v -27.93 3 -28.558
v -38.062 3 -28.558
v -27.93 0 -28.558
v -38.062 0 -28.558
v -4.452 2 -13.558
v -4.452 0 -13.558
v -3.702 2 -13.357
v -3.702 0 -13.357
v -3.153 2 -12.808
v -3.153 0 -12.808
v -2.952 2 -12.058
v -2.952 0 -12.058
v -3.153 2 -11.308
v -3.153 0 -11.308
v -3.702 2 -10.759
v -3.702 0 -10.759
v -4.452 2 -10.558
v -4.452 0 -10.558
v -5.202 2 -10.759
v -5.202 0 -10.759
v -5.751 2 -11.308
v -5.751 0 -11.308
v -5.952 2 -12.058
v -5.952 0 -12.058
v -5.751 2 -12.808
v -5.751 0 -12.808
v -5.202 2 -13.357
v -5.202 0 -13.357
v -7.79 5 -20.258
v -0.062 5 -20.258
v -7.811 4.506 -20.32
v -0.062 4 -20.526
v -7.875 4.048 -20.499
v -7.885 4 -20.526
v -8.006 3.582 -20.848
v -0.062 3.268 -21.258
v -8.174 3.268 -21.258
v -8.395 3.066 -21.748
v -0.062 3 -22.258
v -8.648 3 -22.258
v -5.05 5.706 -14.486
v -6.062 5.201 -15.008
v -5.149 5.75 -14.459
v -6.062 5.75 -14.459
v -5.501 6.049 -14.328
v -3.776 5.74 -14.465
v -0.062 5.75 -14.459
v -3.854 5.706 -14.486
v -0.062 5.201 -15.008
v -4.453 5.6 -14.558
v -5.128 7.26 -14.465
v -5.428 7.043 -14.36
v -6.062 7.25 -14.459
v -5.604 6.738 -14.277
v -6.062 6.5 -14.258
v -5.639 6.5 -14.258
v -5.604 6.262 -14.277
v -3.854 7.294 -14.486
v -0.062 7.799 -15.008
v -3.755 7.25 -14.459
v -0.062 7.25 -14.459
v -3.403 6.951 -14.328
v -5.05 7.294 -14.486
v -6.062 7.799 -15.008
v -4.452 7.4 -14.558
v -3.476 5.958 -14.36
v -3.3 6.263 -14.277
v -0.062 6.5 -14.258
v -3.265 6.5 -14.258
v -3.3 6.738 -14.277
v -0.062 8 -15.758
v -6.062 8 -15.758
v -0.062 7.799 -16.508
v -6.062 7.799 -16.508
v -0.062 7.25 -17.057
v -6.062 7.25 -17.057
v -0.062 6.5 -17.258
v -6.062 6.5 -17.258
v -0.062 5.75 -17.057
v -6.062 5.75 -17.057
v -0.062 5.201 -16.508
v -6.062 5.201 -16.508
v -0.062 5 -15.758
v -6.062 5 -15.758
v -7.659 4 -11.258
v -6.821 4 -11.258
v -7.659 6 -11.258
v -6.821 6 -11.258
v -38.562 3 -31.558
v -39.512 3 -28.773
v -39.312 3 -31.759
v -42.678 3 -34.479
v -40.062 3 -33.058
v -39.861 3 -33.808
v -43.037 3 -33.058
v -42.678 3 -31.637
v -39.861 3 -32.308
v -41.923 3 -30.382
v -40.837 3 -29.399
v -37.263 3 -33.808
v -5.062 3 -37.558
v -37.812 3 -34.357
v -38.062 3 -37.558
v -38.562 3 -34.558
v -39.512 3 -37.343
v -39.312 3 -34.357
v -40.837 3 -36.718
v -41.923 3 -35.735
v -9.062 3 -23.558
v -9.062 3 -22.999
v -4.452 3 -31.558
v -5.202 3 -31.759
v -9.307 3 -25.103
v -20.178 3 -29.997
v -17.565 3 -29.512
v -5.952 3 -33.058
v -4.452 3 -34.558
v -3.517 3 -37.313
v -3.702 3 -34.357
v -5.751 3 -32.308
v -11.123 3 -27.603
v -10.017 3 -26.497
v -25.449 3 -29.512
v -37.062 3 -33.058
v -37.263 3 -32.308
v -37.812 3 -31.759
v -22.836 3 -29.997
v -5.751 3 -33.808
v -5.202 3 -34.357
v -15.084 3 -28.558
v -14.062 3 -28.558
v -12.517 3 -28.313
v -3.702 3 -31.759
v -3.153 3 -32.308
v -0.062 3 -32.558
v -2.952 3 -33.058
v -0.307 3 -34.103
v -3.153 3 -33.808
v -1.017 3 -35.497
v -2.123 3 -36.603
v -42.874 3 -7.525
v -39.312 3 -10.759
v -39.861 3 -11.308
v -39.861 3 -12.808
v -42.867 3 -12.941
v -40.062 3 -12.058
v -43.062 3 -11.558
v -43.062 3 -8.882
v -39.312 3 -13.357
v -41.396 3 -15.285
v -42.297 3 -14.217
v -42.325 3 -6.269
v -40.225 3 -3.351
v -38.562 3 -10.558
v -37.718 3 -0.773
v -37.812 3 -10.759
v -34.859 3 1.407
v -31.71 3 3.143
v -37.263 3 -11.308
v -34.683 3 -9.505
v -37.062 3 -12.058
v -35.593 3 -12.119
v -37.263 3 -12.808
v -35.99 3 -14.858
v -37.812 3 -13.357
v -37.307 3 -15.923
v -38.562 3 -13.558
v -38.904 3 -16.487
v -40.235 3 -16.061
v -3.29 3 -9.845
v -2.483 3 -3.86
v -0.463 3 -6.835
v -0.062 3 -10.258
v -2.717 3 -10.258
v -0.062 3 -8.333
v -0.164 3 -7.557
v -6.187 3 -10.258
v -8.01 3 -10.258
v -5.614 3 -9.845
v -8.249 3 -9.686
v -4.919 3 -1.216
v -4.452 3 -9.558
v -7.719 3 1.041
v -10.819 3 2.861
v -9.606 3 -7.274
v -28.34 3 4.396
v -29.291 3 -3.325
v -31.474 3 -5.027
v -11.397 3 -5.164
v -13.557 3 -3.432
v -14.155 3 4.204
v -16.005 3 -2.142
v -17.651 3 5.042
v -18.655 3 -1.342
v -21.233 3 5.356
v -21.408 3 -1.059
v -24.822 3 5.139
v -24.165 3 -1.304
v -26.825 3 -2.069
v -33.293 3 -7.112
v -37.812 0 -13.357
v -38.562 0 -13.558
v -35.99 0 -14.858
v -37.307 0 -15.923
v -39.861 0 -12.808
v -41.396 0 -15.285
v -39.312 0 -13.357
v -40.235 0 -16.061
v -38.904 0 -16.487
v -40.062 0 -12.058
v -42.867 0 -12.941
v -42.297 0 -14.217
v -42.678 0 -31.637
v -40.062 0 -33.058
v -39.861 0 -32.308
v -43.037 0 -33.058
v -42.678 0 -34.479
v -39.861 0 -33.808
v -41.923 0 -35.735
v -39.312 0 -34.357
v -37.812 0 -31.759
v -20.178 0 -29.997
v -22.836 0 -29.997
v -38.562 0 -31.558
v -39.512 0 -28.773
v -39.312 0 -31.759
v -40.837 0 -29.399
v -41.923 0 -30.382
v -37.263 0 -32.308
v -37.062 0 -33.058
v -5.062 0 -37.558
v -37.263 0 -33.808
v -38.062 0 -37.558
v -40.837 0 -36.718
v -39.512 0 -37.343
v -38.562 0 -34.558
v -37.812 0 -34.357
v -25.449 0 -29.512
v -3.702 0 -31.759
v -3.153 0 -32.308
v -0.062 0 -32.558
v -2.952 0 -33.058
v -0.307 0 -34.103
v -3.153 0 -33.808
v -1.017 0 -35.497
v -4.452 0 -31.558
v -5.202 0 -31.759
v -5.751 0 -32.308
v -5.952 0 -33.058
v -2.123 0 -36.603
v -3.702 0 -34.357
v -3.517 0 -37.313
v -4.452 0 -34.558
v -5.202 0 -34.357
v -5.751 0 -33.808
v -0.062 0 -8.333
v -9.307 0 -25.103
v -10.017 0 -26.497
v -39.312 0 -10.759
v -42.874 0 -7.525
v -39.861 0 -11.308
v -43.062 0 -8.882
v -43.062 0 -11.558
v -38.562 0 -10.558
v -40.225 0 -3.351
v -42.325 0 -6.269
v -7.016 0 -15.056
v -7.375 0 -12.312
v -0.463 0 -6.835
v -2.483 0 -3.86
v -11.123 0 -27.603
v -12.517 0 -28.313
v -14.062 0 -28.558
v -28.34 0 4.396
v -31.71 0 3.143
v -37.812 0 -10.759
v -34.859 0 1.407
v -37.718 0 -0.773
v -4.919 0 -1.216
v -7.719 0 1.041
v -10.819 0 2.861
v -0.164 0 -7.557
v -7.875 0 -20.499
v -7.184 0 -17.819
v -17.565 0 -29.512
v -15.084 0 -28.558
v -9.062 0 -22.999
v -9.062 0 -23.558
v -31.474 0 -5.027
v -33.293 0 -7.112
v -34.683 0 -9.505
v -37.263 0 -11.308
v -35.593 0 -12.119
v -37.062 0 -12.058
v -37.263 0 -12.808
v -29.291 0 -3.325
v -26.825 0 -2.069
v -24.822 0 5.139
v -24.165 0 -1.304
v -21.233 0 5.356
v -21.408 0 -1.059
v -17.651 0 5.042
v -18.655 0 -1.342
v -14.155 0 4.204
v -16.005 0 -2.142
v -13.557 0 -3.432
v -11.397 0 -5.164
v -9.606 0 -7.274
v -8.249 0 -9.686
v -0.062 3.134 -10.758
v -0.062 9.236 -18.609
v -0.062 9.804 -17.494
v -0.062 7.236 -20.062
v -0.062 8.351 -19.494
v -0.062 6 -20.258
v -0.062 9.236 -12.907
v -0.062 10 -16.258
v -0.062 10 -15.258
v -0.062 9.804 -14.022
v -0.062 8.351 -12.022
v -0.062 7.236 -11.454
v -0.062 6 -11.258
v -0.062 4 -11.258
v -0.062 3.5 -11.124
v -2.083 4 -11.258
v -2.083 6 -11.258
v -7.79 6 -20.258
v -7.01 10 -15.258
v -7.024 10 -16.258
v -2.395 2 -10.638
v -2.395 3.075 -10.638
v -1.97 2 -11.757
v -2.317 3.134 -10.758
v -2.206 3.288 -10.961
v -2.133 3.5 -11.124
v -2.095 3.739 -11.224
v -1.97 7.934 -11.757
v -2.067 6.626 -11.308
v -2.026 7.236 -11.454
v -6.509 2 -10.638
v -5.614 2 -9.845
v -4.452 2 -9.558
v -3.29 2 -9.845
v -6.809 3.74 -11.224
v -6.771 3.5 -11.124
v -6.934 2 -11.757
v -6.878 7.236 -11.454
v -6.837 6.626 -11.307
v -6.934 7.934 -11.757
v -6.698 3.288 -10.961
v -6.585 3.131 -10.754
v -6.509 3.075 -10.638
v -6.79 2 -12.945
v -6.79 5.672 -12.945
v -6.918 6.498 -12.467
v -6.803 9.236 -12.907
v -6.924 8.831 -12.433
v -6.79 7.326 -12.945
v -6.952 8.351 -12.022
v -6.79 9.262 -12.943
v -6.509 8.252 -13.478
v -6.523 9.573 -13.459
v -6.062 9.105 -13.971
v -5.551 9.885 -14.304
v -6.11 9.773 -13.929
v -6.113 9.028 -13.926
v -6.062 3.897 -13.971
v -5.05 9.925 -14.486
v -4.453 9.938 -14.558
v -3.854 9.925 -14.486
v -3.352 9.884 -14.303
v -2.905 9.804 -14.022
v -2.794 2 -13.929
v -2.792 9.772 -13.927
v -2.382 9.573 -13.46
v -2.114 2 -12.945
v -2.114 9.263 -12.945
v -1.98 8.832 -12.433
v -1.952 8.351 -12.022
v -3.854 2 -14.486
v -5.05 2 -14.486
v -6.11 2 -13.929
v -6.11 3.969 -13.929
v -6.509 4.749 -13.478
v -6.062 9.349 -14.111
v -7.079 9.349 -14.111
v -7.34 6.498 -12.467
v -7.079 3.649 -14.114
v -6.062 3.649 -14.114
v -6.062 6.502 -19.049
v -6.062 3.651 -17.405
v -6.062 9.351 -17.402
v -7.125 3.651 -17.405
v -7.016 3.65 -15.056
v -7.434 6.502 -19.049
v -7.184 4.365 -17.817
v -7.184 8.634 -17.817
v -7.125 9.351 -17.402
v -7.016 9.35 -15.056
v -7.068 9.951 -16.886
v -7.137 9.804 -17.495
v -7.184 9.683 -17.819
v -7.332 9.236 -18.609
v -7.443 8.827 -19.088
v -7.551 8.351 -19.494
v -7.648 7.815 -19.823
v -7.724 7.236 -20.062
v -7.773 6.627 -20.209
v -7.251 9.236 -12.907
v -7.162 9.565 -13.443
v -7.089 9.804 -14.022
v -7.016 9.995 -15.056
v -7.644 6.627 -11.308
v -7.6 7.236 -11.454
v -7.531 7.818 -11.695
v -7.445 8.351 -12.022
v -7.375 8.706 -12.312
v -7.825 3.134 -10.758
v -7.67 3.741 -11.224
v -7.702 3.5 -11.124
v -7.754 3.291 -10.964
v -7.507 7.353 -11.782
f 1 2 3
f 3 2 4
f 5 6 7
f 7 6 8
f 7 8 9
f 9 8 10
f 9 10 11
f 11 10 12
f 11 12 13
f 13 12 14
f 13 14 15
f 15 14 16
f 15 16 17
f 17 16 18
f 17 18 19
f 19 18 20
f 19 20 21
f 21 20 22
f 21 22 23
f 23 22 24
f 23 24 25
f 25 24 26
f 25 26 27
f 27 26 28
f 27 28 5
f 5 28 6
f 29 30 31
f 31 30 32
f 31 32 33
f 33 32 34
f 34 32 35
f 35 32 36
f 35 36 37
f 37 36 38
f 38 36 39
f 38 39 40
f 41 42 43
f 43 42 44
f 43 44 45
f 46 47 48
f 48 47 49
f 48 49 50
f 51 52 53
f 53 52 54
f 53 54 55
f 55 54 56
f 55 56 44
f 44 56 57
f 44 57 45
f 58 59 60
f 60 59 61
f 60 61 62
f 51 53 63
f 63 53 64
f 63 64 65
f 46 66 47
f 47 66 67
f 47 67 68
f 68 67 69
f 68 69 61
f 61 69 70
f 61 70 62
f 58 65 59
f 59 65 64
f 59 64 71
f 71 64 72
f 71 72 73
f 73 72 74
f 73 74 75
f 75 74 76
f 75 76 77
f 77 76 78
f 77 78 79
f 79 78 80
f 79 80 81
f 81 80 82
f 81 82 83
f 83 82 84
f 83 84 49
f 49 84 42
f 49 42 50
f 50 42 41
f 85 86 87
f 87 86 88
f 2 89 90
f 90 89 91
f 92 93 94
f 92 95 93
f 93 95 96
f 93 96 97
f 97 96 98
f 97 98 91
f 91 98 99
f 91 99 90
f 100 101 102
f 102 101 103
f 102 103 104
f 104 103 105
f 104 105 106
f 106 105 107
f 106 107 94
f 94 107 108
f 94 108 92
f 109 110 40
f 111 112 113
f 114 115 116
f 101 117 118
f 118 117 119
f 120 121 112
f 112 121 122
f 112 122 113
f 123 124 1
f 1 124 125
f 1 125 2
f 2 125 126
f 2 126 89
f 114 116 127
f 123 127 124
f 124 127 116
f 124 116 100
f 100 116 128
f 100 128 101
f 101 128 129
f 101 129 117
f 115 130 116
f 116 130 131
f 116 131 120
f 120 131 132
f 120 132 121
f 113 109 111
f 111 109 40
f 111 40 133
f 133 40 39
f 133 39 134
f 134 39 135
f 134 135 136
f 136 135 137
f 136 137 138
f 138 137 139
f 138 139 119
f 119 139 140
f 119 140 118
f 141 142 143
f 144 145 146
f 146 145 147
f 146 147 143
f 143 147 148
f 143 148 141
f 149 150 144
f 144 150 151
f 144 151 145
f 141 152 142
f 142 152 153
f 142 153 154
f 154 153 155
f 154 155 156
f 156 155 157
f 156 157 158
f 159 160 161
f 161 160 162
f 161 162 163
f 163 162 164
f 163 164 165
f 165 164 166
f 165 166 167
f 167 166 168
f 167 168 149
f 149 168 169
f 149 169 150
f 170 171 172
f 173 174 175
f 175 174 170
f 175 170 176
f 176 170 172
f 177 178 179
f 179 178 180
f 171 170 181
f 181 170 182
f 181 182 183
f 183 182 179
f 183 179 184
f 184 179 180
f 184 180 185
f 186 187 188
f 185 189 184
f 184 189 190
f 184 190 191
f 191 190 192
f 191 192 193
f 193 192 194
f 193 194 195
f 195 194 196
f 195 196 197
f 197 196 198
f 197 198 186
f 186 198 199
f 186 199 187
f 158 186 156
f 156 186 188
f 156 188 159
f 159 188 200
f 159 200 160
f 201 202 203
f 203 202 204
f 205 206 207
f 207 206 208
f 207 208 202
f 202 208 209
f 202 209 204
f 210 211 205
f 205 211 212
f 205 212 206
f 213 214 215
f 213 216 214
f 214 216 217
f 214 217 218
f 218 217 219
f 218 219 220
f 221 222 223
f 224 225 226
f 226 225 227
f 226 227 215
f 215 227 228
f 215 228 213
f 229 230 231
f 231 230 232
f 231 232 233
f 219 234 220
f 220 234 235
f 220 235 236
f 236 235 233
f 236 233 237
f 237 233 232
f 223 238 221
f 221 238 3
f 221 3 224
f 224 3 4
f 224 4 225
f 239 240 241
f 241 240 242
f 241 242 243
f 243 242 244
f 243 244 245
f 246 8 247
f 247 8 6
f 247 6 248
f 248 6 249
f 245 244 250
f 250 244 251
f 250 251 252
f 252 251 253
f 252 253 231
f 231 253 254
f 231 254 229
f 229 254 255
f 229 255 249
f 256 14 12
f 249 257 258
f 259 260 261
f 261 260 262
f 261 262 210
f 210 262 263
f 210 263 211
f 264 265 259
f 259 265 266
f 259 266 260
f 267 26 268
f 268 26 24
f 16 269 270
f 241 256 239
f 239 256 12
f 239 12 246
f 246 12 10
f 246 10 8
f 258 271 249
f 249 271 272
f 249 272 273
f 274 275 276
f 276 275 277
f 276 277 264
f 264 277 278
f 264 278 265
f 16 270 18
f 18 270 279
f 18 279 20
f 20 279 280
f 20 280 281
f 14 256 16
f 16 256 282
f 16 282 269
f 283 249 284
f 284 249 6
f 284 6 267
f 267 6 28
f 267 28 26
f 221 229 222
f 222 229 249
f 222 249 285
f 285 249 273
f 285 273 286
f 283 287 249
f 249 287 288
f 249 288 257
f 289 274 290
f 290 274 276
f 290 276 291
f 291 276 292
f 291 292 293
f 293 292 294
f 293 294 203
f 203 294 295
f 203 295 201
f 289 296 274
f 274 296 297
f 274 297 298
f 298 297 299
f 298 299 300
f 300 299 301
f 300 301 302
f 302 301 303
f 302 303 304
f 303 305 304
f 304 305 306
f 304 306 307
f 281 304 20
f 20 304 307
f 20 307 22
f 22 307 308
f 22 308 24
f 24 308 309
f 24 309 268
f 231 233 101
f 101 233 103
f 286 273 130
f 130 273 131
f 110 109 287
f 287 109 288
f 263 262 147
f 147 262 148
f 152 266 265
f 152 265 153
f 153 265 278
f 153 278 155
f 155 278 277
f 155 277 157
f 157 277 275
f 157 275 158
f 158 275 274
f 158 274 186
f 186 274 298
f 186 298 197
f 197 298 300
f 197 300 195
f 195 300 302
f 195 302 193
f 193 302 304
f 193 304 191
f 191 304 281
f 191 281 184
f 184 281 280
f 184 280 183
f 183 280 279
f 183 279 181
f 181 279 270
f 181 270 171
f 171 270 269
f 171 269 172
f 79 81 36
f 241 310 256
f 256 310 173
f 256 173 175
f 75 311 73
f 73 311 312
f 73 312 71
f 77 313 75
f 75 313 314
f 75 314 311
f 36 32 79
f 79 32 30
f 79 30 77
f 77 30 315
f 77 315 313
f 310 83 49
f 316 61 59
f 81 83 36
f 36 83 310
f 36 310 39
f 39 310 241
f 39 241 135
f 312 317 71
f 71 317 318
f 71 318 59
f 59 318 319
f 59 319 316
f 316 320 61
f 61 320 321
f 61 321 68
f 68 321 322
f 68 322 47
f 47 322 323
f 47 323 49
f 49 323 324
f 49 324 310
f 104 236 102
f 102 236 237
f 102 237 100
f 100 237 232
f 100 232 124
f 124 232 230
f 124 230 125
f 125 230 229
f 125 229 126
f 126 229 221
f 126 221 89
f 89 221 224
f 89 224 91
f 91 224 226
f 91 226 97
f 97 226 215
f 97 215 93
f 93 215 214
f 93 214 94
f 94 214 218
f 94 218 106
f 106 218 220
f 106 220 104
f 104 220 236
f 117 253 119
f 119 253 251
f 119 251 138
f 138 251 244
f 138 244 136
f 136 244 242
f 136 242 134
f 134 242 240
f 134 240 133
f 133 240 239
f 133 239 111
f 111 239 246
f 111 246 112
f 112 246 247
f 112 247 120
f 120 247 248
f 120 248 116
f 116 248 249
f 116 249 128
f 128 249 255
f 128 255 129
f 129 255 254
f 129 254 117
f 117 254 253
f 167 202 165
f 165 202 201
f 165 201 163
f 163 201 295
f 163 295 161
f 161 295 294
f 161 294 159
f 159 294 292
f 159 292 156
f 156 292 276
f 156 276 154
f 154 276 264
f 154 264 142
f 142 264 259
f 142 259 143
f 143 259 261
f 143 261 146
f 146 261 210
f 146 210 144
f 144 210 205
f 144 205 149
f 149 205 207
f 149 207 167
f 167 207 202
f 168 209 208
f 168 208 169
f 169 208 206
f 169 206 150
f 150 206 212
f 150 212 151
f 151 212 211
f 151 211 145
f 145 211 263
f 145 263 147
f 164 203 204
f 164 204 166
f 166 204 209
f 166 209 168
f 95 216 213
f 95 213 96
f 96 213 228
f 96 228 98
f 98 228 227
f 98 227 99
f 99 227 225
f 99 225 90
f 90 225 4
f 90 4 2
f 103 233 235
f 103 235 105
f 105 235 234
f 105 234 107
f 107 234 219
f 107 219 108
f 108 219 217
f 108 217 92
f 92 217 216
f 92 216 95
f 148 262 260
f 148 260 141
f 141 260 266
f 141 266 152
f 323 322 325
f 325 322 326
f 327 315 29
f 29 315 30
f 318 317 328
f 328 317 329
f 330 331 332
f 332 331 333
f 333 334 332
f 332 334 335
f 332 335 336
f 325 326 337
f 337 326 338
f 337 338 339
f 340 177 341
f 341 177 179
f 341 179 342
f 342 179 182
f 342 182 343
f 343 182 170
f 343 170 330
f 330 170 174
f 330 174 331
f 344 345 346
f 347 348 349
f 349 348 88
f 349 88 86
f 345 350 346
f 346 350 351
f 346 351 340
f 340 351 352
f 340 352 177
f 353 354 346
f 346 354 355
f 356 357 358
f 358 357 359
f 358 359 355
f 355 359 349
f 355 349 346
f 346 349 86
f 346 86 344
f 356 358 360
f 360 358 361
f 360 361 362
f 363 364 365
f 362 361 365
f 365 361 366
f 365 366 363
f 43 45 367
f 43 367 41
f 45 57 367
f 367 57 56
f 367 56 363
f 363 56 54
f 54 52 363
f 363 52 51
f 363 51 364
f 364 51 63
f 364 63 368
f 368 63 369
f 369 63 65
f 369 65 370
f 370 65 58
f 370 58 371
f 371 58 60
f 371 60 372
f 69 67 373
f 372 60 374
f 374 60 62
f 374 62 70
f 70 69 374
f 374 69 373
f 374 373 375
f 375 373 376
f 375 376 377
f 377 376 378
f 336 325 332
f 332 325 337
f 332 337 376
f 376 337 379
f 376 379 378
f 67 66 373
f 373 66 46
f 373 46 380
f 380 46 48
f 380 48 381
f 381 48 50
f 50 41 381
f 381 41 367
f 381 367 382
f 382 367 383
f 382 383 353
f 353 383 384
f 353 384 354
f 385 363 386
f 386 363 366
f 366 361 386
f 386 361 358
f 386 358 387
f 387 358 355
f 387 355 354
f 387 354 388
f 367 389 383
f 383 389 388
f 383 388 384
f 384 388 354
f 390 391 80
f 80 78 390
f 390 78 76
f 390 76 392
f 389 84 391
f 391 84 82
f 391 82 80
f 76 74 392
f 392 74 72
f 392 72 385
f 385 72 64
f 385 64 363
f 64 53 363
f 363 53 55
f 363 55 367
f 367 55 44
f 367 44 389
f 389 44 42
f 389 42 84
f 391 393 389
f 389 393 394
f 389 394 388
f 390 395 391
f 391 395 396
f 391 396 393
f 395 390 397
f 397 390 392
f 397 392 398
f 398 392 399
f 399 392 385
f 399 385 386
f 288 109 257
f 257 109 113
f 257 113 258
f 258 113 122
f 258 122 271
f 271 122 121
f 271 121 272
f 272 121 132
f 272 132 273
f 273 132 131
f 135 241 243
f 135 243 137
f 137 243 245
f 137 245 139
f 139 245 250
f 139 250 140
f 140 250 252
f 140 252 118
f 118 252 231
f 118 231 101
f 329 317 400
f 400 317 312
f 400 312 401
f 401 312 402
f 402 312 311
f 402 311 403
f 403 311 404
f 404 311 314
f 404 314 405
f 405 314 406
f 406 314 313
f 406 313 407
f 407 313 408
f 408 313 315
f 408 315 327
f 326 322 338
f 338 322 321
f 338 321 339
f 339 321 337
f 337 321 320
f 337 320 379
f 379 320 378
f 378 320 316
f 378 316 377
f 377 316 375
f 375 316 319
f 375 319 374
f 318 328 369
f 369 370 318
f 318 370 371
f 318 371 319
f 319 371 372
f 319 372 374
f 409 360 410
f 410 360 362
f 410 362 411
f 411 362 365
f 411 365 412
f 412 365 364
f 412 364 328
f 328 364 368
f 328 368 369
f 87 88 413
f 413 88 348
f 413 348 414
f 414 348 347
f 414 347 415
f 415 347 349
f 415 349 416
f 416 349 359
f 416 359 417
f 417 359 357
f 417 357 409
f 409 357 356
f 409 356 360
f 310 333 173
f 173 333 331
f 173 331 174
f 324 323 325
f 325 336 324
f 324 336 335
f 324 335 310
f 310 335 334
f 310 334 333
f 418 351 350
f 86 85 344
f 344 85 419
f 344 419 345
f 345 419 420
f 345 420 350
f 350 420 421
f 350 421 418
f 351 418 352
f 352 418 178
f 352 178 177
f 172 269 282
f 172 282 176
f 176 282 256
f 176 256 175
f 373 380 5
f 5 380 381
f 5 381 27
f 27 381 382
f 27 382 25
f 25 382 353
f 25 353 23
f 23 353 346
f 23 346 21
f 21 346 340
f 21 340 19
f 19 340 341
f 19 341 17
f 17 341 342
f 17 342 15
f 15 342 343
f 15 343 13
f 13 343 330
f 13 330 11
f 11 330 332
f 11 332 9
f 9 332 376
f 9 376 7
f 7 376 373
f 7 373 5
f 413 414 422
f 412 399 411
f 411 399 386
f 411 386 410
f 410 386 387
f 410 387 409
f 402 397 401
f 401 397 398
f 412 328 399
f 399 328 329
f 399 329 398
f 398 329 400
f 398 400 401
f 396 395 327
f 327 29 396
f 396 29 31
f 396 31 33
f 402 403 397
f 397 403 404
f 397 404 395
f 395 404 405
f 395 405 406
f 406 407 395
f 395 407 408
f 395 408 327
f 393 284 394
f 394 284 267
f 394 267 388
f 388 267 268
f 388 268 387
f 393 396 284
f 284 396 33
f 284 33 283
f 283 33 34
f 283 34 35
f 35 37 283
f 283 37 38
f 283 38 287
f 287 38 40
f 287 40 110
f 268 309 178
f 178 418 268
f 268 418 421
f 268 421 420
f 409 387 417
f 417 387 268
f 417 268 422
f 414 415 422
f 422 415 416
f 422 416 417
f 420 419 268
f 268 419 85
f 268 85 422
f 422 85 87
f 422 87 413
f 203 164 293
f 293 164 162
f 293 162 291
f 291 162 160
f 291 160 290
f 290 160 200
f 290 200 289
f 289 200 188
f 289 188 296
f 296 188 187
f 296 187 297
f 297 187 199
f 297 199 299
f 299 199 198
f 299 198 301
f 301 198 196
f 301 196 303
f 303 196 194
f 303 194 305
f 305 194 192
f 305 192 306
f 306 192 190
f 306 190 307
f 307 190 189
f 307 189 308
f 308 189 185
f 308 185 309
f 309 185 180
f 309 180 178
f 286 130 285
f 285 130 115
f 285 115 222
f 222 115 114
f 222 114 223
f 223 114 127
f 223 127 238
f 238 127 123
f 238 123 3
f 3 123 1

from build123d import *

# Parameters (mm, degrees)
ESQUISSE1_R                  = 1.5
BOSS_EXTRU_1_DEPTH           = 3
CONG_1_R                     = 5
ESQUISSE2_W                  = 9
ESQUISSE2_H                  = 9
BOSS_EXTRU_2_DEPTH           = 7
ESQUISSE3_R                  = 2.5
ENL_V_MAT_EXTRU_1_DEPTH      = 7
ESQUISSE6_R                  = 1.5
ENL_V_MAT_EXTRU_2_DEPTH      = 52.639313998
ENL_V_MAT_EXTRU_3_DEPTH      = 3
CONG_2_R                     = 5
CONG_5_R                     = 2
CONG_7_R                     = 4
CONG_8_R                     = 4
CONG_10_R                    = 1
CONG_11_R                    = 3
ESQUISSE8_R                  = 2.5
ENL_V_MAT_EXTRU_4_DEPTH      = 1
ENL_V_MAT_EXTRU_5_DEPTH      = 58.566971538
ENL_V_MAT_EXTRU_5_DEPTH_BACK = 58.566971538
ESQUISSE9_R                  = 14.5


# Some blends are built 0.0001 mm under size
with BuildPart() as part:
    # Esquisse1 → Boss.-Extru.1 (new body)
    with BuildSketch(Plane(origin=(0, 0, 0), x_dir=(1, 0, 0), z_dir=(0, 1, 0))):
        with BuildLine():
            Line((-43.062018769, 37.558204832), (-43.062018769, 28.558204832))
            Line((-43.062018769, 28.558204832), (-9.062018769, 28.558204832))
            Line((-9.062018769, 28.558204832), (-9.062018769, 16.558204832))
            Line((-9.062018769, 16.558204832), (-10.400687943, 16.558204832))
            ThreePointArc((-10.400687943, 16.558204832), (-22.504500987, 1.48048564), (-34.608314032, 16.558204832))
            Line((-34.608314032, 16.558204832), (-43.062018769, 16.558204832))
            Line((-43.062018769, 16.558204832), (-43.062018769, 7.558204832))
            ThreePointArc((-43.062018769, 7.558204832), (-21.562018769, -5.358424695), (-0.062018769, 7.558204832))
            Line((-0.062018769, 7.558204832), (-0.062018769, 37.558204832))
            Line((-0.062018769, 37.558204832), (-43.062018769, 37.558204832))
        make_face()
        with Locations(Location((-38.562018769, 33.058204832, 0), (0, 0, 270))):
            Circle(ESQUISSE1_R, mode=Mode.SUBTRACT)
        with Locations(Location((-4.452018769, 33.058204832, 0), (0, 0, 270))):
            Circle(ESQUISSE1_R, mode=Mode.SUBTRACT)
        with Locations(Location((-38.562018769, 12.058204832, 0), (0, 0, 270))):
            Circle(ESQUISSE1_R, mode=Mode.SUBTRACT)
        with Locations(Location((-4.452018769, 12.058204832, 0), (0, 0, 270))):
            Circle(ESQUISSE1_R, mode=Mode.SUBTRACT)
    extrude(amount=BOSS_EXTRU_1_DEPTH)

    # Congé1
    # the kernel refuses this fillet: 5 mm, written as the material it takes off along each edge
    with BuildSketch(Plane(origin=(-10.400687943, -7.42198732, -16.558204832), x_dir=(1, 0, 0), z_dir=(0, 1, 0))) as cong_1_piece_1:
        with BuildLine():
            CenterArc((5.289036165, -3.065061278), CONG_1_R, 142.192371197, 36.541408835)
            Line((0.290257108, -2.954571735), (0.190281527, -2.952361944))
            ThreePointArc((0.190281527, -2.952361944), (0.1343702, -1.478342768), (-0.09763425, -0.021622979))
            Line((-0.09763425, -0.021622979), (0, 0.1))
            ThreePointArc((0, 0.1), (0.669334587, 0.1), (1.259661834, 0.061301226))
            Line((1.259661834, 0.061301226), (1.338669174, 0))
        make_face()
    extrude(amount=17.84397464, mode=Mode.SUBTRACT)
    with BuildSketch(Plane(origin=(-34.608314032, -12.844953969, -16.558204832), x_dir=(-0.04210418762599367, 0, 0.9991132255076776), z_dir=(0, 1, 0))) as cong_1_piece_2:
        with BuildLine():
            CenterArc((5.211896668, -4.922904418), CONG_1_R, 100.074581009, 82.338524577)
            Line((0.216330541, -5.133425356), (0.116419218, -5.137635775))
            Line((0.116419218, -5.137635775), (-0.099911323, -0.004210419))
            Line((-0.099911323, -0.004210419), (0.017492994, 0.098458088))
            ThreePointArc((0.017492994, 0.098458088), (2.168623487, -0.091152287), (4.31975398, 0.098458088))
            Line((4.31975398, 0.098458088), (4.337246974, 0))
        make_face()
    extrude(amount=28.689907938, mode=Mode.SUBTRACT)
    with BuildSketch(Plane(origin=(-43.062018769, -12.5, -37.558204832), x_dir=(0, 0, 1), z_dir=(0, 1, 0))) as cong_1_piece_3:
        with BuildLine():
            CenterArc((CONG_1_R, CONG_1_R), CONG_1_R, 180, 90)
            Line((0, CONG_1_R), (-CONG_1_R * 0.02, CONG_1_R))
            Line((-CONG_1_R * 0.02, CONG_1_R), (-CONG_1_R * 0.02, -CONG_1_R * 0.02))
            Line((-CONG_1_R * 0.02, -CONG_1_R * 0.02), (CONG_1_R, -CONG_1_R * 0.02))
            Line((CONG_1_R, -CONG_1_R * 0.02), (CONG_1_R, 0))
        make_face()
    extrude(amount=28, mode=Mode.SUBTRACT)
    with BuildSketch(Plane(origin=(-43.062018769, -12.5, -28.558204832), x_dir=(0, 0, -1), z_dir=(0, 1, 0)), Plane(origin=(-43.062018769, -12.5, -16.558204832), x_dir=(1, 0, 0), z_dir=(0, 1, 0))) as cong_1_piece_4:
        with BuildLine():
            CenterArc((CONG_1_R, -CONG_1_R), CONG_1_R, 90, 90)
            Line((0, -CONG_1_R), (-CONG_1_R * 0.02, -CONG_1_R))
            Line((-CONG_1_R * 0.02, -CONG_1_R), (-CONG_1_R * 0.02, CONG_1_R * 0.02))
            Line((-CONG_1_R * 0.02, CONG_1_R * 0.02), (CONG_1_R, CONG_1_R * 0.02))
            Line((CONG_1_R, CONG_1_R * 0.02), (CONG_1_R, 0))
        make_face()
    extrude(amount=28, mode=Mode.SUBTRACT)
    with BuildSketch(Plane(origin=(-43.062018769, -3.711884718, -7.558204832), x_dir=(0, 0, -1), z_dir=(0, 1, 0))) as cong_1_piece_5:
        with BuildLine():
            CenterArc((1.32357905, -5), CONG_1_R, 90, 31.501244596)
            Line((-1.28900638, -0.736855929), (-1.341258088, -0.651593047))
            ThreePointArc((-1.341258088, -0.651593047), (-0.699748478, -0.271785559), (-0.046958464, 0.088288746))
            Line((-0.046958464, 0.088288746), (0, 0.1))
            Line((0, 0.1), (1.32357905, 0.1))
            Line((1.32357905, 0.1), (1.32357905, 0))
        make_face()
    extrude(amount=10.423769437, mode=Mode.SUBTRACT)

    # Esquisse2 → Boss.-Extru.2 (add)
    with BuildSketch(Plane(origin=(0, 3, 0), x_dir=(1, 0, 0), z_dir=(0, 1, 0))):
        with Locations((-4.562018769, 15.758204832)):
            Rectangle(ESQUISSE2_W, ESQUISSE2_H)
    extrude(amount=BOSS_EXTRU_2_DEPTH)

    # Esquisse3 → Enlèv. mat.-Extru.1 (cut)
    with BuildSketch(Plane(origin=(0, 10, 0), x_dir=(1, 0, 0), z_dir=(0, 1, 0))):
        with Locations((-4.452018769, 12.058204832)):
            Circle(ESQUISSE3_R)
    extrude(amount=-ENL_V_MAT_EXTRU_1_DEPTH, mode=Mode.SUBTRACT)

    # Esquisse6 → Enlèv. mat.-Extru.2 (cut, through all)
    with BuildSketch(Plane.ZY.offset(9.062018769)):
        with Locations((-15.758204832, 6.5)):
            Circle(ESQUISSE6_R)
    extrude(amount=-ENL_V_MAT_EXTRU_2_DEPTH, mode=Mode.SUBTRACT)

    # Esquisse7 → Enlèv. mat.-Extru.3 (cut)
    with BuildSketch(Plane.ZY.offset(9.062018769)):
        Polygon((-14.114150837, 3.649195471), (-12.467308691, 6.49839026), (-14.111362685, 9.349194789), (-17.402258826, 9.350804529), (-19.049100972, 6.50160974), (-17.405046978, 3.650805211), align=None)
    extrude(amount=-ENL_V_MAT_EXTRU_3_DEPTH, mode=Mode.SUBTRACT)

    # Congé2
    cong_2_edges = [part.edges().sort_by_distance(p)[0] for p in [
        (-0.062018769, 1.5, -37.558204832),
        (-9.062018769, 1.5, -28.558204832),
    ]]
    fillet(cong_2_edges, radius=CONG_2_R)

    # Congé5
    cong_5_edges = [part.edges().sort_by_distance(p)[0] for p in [
        (-4.562018769, 3, -20.258204832),
    ]]
    fillet(cong_5_edges, radius=CONG_5_R)

    # Congé7
    cong_7_edges = [part.edges().sort_by_distance(p)[0] for p in [
        (-4.562018769, 10, -20.258204832),
    ]]
    fillet(cong_7_edges, radius=CONG_7_R)

    # Congé8
    cong_8_edges = [part.edges().sort_by_distance(p)[0] for p in [
        (-7.941290697, 10, -11.258204832),
    ]]
    fillet(cong_8_edges, radius=CONG_8_R - 0.0001)  # a hair under: the kernel refuses the full size

    # Congé10
    cong_10_edges = [part.edges().sort_by_distance(p)[0] for p in [
        (-7.941290697, 3, -11.258204832),
        (-1.072746841, 3, -11.258204832),
    ]]
    fillet(cong_10_edges, radius=CONG_10_R)

    # Congé11
    cong_11_edges = [part.edges().sort_by_distance(p)[0] for p in [
        (-0.062018769, 1.5, -7.558204832),
    ]]
    fillet(cong_11_edges, radius=CONG_11_R)

    # Esquisse8 → Enlèv. mat.-Extru.4 (cut)
    with BuildSketch(Plane(origin=(0, 3, 0), x_dir=(1, 0, 0), z_dir=(0, 1, 0))):
        with Locations(Location((-4.452018769, 12.058204832, 0), (0, 0, 270))):
            Circle(ESQUISSE8_R)
    extrude(amount=-ENL_V_MAT_EXTRU_4_DEPTH, mode=Mode.SUBTRACT)

    # Esquisse9 → Enlèv. mat.-Extru.5 (cut, two sides: drawn at the far end of the back side and taken through both)
    with BuildSketch(Plane(origin=(0, 3, 0), x_dir=(1, 0, 0), z_dir=(0, 1, 0)).offset(-ENL_V_MAT_EXTRU_5_DEPTH_BACK)):
        with Locations((-21.507018769, 15.558204832)):
            Circle(ESQUISSE9_R)
    extrude(amount=ENL_V_MAT_EXTRU_5_DEPTH + ENL_V_MAT_EXTRU_5_DEPTH_BACK, mode=Mode.SUBTRACT)


solid = part.part
